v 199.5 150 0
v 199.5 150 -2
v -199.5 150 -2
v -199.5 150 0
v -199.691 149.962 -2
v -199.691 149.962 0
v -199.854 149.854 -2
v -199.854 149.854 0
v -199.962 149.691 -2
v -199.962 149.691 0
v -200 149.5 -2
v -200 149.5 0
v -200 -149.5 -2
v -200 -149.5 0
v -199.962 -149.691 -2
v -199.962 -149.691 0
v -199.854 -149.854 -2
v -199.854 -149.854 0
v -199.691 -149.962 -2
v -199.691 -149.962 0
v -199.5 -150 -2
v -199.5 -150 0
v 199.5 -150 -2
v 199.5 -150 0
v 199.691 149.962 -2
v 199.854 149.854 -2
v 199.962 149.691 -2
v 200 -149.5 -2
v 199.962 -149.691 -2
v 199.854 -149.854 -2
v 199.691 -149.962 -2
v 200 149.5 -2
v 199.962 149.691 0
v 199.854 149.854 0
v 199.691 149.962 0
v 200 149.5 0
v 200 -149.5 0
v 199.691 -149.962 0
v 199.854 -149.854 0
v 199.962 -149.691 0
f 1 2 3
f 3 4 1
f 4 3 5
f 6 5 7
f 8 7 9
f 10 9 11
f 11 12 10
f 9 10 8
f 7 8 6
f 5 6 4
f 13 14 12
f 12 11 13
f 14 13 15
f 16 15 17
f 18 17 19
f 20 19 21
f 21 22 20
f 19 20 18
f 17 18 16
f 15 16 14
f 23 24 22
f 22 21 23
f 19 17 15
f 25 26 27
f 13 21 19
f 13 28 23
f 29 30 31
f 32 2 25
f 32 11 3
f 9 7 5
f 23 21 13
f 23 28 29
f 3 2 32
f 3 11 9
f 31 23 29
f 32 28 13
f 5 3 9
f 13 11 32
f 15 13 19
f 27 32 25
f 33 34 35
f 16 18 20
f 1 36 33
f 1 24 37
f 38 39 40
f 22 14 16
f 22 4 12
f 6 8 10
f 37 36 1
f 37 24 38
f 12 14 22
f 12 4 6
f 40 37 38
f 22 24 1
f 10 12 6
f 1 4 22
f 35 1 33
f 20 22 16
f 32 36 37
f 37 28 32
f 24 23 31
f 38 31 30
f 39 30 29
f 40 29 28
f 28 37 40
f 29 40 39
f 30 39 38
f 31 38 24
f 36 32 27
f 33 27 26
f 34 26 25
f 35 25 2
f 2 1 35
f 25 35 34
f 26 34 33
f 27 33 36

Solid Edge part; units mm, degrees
sketch "Sketch1" plane through (0, 0, 0) normal (0, 0, 1) x (1, 0, 0)
  line L0 (-200, 150) -> (-200, -150)
  line L1 (-200, -150) -> (200, -150)
  line L2 (200, -150) -> (200, 150)
  line L3 (200, 150) -> (-200, 150)
extrude "Protrusion1" add sketch "Sketch1" against normal blind 2
fillet "Redondo_1" radius 0.5 4 edges at (200, 150, -1) (200, -150, -1) (-200, -150, -1) (-200, 150, -1)
